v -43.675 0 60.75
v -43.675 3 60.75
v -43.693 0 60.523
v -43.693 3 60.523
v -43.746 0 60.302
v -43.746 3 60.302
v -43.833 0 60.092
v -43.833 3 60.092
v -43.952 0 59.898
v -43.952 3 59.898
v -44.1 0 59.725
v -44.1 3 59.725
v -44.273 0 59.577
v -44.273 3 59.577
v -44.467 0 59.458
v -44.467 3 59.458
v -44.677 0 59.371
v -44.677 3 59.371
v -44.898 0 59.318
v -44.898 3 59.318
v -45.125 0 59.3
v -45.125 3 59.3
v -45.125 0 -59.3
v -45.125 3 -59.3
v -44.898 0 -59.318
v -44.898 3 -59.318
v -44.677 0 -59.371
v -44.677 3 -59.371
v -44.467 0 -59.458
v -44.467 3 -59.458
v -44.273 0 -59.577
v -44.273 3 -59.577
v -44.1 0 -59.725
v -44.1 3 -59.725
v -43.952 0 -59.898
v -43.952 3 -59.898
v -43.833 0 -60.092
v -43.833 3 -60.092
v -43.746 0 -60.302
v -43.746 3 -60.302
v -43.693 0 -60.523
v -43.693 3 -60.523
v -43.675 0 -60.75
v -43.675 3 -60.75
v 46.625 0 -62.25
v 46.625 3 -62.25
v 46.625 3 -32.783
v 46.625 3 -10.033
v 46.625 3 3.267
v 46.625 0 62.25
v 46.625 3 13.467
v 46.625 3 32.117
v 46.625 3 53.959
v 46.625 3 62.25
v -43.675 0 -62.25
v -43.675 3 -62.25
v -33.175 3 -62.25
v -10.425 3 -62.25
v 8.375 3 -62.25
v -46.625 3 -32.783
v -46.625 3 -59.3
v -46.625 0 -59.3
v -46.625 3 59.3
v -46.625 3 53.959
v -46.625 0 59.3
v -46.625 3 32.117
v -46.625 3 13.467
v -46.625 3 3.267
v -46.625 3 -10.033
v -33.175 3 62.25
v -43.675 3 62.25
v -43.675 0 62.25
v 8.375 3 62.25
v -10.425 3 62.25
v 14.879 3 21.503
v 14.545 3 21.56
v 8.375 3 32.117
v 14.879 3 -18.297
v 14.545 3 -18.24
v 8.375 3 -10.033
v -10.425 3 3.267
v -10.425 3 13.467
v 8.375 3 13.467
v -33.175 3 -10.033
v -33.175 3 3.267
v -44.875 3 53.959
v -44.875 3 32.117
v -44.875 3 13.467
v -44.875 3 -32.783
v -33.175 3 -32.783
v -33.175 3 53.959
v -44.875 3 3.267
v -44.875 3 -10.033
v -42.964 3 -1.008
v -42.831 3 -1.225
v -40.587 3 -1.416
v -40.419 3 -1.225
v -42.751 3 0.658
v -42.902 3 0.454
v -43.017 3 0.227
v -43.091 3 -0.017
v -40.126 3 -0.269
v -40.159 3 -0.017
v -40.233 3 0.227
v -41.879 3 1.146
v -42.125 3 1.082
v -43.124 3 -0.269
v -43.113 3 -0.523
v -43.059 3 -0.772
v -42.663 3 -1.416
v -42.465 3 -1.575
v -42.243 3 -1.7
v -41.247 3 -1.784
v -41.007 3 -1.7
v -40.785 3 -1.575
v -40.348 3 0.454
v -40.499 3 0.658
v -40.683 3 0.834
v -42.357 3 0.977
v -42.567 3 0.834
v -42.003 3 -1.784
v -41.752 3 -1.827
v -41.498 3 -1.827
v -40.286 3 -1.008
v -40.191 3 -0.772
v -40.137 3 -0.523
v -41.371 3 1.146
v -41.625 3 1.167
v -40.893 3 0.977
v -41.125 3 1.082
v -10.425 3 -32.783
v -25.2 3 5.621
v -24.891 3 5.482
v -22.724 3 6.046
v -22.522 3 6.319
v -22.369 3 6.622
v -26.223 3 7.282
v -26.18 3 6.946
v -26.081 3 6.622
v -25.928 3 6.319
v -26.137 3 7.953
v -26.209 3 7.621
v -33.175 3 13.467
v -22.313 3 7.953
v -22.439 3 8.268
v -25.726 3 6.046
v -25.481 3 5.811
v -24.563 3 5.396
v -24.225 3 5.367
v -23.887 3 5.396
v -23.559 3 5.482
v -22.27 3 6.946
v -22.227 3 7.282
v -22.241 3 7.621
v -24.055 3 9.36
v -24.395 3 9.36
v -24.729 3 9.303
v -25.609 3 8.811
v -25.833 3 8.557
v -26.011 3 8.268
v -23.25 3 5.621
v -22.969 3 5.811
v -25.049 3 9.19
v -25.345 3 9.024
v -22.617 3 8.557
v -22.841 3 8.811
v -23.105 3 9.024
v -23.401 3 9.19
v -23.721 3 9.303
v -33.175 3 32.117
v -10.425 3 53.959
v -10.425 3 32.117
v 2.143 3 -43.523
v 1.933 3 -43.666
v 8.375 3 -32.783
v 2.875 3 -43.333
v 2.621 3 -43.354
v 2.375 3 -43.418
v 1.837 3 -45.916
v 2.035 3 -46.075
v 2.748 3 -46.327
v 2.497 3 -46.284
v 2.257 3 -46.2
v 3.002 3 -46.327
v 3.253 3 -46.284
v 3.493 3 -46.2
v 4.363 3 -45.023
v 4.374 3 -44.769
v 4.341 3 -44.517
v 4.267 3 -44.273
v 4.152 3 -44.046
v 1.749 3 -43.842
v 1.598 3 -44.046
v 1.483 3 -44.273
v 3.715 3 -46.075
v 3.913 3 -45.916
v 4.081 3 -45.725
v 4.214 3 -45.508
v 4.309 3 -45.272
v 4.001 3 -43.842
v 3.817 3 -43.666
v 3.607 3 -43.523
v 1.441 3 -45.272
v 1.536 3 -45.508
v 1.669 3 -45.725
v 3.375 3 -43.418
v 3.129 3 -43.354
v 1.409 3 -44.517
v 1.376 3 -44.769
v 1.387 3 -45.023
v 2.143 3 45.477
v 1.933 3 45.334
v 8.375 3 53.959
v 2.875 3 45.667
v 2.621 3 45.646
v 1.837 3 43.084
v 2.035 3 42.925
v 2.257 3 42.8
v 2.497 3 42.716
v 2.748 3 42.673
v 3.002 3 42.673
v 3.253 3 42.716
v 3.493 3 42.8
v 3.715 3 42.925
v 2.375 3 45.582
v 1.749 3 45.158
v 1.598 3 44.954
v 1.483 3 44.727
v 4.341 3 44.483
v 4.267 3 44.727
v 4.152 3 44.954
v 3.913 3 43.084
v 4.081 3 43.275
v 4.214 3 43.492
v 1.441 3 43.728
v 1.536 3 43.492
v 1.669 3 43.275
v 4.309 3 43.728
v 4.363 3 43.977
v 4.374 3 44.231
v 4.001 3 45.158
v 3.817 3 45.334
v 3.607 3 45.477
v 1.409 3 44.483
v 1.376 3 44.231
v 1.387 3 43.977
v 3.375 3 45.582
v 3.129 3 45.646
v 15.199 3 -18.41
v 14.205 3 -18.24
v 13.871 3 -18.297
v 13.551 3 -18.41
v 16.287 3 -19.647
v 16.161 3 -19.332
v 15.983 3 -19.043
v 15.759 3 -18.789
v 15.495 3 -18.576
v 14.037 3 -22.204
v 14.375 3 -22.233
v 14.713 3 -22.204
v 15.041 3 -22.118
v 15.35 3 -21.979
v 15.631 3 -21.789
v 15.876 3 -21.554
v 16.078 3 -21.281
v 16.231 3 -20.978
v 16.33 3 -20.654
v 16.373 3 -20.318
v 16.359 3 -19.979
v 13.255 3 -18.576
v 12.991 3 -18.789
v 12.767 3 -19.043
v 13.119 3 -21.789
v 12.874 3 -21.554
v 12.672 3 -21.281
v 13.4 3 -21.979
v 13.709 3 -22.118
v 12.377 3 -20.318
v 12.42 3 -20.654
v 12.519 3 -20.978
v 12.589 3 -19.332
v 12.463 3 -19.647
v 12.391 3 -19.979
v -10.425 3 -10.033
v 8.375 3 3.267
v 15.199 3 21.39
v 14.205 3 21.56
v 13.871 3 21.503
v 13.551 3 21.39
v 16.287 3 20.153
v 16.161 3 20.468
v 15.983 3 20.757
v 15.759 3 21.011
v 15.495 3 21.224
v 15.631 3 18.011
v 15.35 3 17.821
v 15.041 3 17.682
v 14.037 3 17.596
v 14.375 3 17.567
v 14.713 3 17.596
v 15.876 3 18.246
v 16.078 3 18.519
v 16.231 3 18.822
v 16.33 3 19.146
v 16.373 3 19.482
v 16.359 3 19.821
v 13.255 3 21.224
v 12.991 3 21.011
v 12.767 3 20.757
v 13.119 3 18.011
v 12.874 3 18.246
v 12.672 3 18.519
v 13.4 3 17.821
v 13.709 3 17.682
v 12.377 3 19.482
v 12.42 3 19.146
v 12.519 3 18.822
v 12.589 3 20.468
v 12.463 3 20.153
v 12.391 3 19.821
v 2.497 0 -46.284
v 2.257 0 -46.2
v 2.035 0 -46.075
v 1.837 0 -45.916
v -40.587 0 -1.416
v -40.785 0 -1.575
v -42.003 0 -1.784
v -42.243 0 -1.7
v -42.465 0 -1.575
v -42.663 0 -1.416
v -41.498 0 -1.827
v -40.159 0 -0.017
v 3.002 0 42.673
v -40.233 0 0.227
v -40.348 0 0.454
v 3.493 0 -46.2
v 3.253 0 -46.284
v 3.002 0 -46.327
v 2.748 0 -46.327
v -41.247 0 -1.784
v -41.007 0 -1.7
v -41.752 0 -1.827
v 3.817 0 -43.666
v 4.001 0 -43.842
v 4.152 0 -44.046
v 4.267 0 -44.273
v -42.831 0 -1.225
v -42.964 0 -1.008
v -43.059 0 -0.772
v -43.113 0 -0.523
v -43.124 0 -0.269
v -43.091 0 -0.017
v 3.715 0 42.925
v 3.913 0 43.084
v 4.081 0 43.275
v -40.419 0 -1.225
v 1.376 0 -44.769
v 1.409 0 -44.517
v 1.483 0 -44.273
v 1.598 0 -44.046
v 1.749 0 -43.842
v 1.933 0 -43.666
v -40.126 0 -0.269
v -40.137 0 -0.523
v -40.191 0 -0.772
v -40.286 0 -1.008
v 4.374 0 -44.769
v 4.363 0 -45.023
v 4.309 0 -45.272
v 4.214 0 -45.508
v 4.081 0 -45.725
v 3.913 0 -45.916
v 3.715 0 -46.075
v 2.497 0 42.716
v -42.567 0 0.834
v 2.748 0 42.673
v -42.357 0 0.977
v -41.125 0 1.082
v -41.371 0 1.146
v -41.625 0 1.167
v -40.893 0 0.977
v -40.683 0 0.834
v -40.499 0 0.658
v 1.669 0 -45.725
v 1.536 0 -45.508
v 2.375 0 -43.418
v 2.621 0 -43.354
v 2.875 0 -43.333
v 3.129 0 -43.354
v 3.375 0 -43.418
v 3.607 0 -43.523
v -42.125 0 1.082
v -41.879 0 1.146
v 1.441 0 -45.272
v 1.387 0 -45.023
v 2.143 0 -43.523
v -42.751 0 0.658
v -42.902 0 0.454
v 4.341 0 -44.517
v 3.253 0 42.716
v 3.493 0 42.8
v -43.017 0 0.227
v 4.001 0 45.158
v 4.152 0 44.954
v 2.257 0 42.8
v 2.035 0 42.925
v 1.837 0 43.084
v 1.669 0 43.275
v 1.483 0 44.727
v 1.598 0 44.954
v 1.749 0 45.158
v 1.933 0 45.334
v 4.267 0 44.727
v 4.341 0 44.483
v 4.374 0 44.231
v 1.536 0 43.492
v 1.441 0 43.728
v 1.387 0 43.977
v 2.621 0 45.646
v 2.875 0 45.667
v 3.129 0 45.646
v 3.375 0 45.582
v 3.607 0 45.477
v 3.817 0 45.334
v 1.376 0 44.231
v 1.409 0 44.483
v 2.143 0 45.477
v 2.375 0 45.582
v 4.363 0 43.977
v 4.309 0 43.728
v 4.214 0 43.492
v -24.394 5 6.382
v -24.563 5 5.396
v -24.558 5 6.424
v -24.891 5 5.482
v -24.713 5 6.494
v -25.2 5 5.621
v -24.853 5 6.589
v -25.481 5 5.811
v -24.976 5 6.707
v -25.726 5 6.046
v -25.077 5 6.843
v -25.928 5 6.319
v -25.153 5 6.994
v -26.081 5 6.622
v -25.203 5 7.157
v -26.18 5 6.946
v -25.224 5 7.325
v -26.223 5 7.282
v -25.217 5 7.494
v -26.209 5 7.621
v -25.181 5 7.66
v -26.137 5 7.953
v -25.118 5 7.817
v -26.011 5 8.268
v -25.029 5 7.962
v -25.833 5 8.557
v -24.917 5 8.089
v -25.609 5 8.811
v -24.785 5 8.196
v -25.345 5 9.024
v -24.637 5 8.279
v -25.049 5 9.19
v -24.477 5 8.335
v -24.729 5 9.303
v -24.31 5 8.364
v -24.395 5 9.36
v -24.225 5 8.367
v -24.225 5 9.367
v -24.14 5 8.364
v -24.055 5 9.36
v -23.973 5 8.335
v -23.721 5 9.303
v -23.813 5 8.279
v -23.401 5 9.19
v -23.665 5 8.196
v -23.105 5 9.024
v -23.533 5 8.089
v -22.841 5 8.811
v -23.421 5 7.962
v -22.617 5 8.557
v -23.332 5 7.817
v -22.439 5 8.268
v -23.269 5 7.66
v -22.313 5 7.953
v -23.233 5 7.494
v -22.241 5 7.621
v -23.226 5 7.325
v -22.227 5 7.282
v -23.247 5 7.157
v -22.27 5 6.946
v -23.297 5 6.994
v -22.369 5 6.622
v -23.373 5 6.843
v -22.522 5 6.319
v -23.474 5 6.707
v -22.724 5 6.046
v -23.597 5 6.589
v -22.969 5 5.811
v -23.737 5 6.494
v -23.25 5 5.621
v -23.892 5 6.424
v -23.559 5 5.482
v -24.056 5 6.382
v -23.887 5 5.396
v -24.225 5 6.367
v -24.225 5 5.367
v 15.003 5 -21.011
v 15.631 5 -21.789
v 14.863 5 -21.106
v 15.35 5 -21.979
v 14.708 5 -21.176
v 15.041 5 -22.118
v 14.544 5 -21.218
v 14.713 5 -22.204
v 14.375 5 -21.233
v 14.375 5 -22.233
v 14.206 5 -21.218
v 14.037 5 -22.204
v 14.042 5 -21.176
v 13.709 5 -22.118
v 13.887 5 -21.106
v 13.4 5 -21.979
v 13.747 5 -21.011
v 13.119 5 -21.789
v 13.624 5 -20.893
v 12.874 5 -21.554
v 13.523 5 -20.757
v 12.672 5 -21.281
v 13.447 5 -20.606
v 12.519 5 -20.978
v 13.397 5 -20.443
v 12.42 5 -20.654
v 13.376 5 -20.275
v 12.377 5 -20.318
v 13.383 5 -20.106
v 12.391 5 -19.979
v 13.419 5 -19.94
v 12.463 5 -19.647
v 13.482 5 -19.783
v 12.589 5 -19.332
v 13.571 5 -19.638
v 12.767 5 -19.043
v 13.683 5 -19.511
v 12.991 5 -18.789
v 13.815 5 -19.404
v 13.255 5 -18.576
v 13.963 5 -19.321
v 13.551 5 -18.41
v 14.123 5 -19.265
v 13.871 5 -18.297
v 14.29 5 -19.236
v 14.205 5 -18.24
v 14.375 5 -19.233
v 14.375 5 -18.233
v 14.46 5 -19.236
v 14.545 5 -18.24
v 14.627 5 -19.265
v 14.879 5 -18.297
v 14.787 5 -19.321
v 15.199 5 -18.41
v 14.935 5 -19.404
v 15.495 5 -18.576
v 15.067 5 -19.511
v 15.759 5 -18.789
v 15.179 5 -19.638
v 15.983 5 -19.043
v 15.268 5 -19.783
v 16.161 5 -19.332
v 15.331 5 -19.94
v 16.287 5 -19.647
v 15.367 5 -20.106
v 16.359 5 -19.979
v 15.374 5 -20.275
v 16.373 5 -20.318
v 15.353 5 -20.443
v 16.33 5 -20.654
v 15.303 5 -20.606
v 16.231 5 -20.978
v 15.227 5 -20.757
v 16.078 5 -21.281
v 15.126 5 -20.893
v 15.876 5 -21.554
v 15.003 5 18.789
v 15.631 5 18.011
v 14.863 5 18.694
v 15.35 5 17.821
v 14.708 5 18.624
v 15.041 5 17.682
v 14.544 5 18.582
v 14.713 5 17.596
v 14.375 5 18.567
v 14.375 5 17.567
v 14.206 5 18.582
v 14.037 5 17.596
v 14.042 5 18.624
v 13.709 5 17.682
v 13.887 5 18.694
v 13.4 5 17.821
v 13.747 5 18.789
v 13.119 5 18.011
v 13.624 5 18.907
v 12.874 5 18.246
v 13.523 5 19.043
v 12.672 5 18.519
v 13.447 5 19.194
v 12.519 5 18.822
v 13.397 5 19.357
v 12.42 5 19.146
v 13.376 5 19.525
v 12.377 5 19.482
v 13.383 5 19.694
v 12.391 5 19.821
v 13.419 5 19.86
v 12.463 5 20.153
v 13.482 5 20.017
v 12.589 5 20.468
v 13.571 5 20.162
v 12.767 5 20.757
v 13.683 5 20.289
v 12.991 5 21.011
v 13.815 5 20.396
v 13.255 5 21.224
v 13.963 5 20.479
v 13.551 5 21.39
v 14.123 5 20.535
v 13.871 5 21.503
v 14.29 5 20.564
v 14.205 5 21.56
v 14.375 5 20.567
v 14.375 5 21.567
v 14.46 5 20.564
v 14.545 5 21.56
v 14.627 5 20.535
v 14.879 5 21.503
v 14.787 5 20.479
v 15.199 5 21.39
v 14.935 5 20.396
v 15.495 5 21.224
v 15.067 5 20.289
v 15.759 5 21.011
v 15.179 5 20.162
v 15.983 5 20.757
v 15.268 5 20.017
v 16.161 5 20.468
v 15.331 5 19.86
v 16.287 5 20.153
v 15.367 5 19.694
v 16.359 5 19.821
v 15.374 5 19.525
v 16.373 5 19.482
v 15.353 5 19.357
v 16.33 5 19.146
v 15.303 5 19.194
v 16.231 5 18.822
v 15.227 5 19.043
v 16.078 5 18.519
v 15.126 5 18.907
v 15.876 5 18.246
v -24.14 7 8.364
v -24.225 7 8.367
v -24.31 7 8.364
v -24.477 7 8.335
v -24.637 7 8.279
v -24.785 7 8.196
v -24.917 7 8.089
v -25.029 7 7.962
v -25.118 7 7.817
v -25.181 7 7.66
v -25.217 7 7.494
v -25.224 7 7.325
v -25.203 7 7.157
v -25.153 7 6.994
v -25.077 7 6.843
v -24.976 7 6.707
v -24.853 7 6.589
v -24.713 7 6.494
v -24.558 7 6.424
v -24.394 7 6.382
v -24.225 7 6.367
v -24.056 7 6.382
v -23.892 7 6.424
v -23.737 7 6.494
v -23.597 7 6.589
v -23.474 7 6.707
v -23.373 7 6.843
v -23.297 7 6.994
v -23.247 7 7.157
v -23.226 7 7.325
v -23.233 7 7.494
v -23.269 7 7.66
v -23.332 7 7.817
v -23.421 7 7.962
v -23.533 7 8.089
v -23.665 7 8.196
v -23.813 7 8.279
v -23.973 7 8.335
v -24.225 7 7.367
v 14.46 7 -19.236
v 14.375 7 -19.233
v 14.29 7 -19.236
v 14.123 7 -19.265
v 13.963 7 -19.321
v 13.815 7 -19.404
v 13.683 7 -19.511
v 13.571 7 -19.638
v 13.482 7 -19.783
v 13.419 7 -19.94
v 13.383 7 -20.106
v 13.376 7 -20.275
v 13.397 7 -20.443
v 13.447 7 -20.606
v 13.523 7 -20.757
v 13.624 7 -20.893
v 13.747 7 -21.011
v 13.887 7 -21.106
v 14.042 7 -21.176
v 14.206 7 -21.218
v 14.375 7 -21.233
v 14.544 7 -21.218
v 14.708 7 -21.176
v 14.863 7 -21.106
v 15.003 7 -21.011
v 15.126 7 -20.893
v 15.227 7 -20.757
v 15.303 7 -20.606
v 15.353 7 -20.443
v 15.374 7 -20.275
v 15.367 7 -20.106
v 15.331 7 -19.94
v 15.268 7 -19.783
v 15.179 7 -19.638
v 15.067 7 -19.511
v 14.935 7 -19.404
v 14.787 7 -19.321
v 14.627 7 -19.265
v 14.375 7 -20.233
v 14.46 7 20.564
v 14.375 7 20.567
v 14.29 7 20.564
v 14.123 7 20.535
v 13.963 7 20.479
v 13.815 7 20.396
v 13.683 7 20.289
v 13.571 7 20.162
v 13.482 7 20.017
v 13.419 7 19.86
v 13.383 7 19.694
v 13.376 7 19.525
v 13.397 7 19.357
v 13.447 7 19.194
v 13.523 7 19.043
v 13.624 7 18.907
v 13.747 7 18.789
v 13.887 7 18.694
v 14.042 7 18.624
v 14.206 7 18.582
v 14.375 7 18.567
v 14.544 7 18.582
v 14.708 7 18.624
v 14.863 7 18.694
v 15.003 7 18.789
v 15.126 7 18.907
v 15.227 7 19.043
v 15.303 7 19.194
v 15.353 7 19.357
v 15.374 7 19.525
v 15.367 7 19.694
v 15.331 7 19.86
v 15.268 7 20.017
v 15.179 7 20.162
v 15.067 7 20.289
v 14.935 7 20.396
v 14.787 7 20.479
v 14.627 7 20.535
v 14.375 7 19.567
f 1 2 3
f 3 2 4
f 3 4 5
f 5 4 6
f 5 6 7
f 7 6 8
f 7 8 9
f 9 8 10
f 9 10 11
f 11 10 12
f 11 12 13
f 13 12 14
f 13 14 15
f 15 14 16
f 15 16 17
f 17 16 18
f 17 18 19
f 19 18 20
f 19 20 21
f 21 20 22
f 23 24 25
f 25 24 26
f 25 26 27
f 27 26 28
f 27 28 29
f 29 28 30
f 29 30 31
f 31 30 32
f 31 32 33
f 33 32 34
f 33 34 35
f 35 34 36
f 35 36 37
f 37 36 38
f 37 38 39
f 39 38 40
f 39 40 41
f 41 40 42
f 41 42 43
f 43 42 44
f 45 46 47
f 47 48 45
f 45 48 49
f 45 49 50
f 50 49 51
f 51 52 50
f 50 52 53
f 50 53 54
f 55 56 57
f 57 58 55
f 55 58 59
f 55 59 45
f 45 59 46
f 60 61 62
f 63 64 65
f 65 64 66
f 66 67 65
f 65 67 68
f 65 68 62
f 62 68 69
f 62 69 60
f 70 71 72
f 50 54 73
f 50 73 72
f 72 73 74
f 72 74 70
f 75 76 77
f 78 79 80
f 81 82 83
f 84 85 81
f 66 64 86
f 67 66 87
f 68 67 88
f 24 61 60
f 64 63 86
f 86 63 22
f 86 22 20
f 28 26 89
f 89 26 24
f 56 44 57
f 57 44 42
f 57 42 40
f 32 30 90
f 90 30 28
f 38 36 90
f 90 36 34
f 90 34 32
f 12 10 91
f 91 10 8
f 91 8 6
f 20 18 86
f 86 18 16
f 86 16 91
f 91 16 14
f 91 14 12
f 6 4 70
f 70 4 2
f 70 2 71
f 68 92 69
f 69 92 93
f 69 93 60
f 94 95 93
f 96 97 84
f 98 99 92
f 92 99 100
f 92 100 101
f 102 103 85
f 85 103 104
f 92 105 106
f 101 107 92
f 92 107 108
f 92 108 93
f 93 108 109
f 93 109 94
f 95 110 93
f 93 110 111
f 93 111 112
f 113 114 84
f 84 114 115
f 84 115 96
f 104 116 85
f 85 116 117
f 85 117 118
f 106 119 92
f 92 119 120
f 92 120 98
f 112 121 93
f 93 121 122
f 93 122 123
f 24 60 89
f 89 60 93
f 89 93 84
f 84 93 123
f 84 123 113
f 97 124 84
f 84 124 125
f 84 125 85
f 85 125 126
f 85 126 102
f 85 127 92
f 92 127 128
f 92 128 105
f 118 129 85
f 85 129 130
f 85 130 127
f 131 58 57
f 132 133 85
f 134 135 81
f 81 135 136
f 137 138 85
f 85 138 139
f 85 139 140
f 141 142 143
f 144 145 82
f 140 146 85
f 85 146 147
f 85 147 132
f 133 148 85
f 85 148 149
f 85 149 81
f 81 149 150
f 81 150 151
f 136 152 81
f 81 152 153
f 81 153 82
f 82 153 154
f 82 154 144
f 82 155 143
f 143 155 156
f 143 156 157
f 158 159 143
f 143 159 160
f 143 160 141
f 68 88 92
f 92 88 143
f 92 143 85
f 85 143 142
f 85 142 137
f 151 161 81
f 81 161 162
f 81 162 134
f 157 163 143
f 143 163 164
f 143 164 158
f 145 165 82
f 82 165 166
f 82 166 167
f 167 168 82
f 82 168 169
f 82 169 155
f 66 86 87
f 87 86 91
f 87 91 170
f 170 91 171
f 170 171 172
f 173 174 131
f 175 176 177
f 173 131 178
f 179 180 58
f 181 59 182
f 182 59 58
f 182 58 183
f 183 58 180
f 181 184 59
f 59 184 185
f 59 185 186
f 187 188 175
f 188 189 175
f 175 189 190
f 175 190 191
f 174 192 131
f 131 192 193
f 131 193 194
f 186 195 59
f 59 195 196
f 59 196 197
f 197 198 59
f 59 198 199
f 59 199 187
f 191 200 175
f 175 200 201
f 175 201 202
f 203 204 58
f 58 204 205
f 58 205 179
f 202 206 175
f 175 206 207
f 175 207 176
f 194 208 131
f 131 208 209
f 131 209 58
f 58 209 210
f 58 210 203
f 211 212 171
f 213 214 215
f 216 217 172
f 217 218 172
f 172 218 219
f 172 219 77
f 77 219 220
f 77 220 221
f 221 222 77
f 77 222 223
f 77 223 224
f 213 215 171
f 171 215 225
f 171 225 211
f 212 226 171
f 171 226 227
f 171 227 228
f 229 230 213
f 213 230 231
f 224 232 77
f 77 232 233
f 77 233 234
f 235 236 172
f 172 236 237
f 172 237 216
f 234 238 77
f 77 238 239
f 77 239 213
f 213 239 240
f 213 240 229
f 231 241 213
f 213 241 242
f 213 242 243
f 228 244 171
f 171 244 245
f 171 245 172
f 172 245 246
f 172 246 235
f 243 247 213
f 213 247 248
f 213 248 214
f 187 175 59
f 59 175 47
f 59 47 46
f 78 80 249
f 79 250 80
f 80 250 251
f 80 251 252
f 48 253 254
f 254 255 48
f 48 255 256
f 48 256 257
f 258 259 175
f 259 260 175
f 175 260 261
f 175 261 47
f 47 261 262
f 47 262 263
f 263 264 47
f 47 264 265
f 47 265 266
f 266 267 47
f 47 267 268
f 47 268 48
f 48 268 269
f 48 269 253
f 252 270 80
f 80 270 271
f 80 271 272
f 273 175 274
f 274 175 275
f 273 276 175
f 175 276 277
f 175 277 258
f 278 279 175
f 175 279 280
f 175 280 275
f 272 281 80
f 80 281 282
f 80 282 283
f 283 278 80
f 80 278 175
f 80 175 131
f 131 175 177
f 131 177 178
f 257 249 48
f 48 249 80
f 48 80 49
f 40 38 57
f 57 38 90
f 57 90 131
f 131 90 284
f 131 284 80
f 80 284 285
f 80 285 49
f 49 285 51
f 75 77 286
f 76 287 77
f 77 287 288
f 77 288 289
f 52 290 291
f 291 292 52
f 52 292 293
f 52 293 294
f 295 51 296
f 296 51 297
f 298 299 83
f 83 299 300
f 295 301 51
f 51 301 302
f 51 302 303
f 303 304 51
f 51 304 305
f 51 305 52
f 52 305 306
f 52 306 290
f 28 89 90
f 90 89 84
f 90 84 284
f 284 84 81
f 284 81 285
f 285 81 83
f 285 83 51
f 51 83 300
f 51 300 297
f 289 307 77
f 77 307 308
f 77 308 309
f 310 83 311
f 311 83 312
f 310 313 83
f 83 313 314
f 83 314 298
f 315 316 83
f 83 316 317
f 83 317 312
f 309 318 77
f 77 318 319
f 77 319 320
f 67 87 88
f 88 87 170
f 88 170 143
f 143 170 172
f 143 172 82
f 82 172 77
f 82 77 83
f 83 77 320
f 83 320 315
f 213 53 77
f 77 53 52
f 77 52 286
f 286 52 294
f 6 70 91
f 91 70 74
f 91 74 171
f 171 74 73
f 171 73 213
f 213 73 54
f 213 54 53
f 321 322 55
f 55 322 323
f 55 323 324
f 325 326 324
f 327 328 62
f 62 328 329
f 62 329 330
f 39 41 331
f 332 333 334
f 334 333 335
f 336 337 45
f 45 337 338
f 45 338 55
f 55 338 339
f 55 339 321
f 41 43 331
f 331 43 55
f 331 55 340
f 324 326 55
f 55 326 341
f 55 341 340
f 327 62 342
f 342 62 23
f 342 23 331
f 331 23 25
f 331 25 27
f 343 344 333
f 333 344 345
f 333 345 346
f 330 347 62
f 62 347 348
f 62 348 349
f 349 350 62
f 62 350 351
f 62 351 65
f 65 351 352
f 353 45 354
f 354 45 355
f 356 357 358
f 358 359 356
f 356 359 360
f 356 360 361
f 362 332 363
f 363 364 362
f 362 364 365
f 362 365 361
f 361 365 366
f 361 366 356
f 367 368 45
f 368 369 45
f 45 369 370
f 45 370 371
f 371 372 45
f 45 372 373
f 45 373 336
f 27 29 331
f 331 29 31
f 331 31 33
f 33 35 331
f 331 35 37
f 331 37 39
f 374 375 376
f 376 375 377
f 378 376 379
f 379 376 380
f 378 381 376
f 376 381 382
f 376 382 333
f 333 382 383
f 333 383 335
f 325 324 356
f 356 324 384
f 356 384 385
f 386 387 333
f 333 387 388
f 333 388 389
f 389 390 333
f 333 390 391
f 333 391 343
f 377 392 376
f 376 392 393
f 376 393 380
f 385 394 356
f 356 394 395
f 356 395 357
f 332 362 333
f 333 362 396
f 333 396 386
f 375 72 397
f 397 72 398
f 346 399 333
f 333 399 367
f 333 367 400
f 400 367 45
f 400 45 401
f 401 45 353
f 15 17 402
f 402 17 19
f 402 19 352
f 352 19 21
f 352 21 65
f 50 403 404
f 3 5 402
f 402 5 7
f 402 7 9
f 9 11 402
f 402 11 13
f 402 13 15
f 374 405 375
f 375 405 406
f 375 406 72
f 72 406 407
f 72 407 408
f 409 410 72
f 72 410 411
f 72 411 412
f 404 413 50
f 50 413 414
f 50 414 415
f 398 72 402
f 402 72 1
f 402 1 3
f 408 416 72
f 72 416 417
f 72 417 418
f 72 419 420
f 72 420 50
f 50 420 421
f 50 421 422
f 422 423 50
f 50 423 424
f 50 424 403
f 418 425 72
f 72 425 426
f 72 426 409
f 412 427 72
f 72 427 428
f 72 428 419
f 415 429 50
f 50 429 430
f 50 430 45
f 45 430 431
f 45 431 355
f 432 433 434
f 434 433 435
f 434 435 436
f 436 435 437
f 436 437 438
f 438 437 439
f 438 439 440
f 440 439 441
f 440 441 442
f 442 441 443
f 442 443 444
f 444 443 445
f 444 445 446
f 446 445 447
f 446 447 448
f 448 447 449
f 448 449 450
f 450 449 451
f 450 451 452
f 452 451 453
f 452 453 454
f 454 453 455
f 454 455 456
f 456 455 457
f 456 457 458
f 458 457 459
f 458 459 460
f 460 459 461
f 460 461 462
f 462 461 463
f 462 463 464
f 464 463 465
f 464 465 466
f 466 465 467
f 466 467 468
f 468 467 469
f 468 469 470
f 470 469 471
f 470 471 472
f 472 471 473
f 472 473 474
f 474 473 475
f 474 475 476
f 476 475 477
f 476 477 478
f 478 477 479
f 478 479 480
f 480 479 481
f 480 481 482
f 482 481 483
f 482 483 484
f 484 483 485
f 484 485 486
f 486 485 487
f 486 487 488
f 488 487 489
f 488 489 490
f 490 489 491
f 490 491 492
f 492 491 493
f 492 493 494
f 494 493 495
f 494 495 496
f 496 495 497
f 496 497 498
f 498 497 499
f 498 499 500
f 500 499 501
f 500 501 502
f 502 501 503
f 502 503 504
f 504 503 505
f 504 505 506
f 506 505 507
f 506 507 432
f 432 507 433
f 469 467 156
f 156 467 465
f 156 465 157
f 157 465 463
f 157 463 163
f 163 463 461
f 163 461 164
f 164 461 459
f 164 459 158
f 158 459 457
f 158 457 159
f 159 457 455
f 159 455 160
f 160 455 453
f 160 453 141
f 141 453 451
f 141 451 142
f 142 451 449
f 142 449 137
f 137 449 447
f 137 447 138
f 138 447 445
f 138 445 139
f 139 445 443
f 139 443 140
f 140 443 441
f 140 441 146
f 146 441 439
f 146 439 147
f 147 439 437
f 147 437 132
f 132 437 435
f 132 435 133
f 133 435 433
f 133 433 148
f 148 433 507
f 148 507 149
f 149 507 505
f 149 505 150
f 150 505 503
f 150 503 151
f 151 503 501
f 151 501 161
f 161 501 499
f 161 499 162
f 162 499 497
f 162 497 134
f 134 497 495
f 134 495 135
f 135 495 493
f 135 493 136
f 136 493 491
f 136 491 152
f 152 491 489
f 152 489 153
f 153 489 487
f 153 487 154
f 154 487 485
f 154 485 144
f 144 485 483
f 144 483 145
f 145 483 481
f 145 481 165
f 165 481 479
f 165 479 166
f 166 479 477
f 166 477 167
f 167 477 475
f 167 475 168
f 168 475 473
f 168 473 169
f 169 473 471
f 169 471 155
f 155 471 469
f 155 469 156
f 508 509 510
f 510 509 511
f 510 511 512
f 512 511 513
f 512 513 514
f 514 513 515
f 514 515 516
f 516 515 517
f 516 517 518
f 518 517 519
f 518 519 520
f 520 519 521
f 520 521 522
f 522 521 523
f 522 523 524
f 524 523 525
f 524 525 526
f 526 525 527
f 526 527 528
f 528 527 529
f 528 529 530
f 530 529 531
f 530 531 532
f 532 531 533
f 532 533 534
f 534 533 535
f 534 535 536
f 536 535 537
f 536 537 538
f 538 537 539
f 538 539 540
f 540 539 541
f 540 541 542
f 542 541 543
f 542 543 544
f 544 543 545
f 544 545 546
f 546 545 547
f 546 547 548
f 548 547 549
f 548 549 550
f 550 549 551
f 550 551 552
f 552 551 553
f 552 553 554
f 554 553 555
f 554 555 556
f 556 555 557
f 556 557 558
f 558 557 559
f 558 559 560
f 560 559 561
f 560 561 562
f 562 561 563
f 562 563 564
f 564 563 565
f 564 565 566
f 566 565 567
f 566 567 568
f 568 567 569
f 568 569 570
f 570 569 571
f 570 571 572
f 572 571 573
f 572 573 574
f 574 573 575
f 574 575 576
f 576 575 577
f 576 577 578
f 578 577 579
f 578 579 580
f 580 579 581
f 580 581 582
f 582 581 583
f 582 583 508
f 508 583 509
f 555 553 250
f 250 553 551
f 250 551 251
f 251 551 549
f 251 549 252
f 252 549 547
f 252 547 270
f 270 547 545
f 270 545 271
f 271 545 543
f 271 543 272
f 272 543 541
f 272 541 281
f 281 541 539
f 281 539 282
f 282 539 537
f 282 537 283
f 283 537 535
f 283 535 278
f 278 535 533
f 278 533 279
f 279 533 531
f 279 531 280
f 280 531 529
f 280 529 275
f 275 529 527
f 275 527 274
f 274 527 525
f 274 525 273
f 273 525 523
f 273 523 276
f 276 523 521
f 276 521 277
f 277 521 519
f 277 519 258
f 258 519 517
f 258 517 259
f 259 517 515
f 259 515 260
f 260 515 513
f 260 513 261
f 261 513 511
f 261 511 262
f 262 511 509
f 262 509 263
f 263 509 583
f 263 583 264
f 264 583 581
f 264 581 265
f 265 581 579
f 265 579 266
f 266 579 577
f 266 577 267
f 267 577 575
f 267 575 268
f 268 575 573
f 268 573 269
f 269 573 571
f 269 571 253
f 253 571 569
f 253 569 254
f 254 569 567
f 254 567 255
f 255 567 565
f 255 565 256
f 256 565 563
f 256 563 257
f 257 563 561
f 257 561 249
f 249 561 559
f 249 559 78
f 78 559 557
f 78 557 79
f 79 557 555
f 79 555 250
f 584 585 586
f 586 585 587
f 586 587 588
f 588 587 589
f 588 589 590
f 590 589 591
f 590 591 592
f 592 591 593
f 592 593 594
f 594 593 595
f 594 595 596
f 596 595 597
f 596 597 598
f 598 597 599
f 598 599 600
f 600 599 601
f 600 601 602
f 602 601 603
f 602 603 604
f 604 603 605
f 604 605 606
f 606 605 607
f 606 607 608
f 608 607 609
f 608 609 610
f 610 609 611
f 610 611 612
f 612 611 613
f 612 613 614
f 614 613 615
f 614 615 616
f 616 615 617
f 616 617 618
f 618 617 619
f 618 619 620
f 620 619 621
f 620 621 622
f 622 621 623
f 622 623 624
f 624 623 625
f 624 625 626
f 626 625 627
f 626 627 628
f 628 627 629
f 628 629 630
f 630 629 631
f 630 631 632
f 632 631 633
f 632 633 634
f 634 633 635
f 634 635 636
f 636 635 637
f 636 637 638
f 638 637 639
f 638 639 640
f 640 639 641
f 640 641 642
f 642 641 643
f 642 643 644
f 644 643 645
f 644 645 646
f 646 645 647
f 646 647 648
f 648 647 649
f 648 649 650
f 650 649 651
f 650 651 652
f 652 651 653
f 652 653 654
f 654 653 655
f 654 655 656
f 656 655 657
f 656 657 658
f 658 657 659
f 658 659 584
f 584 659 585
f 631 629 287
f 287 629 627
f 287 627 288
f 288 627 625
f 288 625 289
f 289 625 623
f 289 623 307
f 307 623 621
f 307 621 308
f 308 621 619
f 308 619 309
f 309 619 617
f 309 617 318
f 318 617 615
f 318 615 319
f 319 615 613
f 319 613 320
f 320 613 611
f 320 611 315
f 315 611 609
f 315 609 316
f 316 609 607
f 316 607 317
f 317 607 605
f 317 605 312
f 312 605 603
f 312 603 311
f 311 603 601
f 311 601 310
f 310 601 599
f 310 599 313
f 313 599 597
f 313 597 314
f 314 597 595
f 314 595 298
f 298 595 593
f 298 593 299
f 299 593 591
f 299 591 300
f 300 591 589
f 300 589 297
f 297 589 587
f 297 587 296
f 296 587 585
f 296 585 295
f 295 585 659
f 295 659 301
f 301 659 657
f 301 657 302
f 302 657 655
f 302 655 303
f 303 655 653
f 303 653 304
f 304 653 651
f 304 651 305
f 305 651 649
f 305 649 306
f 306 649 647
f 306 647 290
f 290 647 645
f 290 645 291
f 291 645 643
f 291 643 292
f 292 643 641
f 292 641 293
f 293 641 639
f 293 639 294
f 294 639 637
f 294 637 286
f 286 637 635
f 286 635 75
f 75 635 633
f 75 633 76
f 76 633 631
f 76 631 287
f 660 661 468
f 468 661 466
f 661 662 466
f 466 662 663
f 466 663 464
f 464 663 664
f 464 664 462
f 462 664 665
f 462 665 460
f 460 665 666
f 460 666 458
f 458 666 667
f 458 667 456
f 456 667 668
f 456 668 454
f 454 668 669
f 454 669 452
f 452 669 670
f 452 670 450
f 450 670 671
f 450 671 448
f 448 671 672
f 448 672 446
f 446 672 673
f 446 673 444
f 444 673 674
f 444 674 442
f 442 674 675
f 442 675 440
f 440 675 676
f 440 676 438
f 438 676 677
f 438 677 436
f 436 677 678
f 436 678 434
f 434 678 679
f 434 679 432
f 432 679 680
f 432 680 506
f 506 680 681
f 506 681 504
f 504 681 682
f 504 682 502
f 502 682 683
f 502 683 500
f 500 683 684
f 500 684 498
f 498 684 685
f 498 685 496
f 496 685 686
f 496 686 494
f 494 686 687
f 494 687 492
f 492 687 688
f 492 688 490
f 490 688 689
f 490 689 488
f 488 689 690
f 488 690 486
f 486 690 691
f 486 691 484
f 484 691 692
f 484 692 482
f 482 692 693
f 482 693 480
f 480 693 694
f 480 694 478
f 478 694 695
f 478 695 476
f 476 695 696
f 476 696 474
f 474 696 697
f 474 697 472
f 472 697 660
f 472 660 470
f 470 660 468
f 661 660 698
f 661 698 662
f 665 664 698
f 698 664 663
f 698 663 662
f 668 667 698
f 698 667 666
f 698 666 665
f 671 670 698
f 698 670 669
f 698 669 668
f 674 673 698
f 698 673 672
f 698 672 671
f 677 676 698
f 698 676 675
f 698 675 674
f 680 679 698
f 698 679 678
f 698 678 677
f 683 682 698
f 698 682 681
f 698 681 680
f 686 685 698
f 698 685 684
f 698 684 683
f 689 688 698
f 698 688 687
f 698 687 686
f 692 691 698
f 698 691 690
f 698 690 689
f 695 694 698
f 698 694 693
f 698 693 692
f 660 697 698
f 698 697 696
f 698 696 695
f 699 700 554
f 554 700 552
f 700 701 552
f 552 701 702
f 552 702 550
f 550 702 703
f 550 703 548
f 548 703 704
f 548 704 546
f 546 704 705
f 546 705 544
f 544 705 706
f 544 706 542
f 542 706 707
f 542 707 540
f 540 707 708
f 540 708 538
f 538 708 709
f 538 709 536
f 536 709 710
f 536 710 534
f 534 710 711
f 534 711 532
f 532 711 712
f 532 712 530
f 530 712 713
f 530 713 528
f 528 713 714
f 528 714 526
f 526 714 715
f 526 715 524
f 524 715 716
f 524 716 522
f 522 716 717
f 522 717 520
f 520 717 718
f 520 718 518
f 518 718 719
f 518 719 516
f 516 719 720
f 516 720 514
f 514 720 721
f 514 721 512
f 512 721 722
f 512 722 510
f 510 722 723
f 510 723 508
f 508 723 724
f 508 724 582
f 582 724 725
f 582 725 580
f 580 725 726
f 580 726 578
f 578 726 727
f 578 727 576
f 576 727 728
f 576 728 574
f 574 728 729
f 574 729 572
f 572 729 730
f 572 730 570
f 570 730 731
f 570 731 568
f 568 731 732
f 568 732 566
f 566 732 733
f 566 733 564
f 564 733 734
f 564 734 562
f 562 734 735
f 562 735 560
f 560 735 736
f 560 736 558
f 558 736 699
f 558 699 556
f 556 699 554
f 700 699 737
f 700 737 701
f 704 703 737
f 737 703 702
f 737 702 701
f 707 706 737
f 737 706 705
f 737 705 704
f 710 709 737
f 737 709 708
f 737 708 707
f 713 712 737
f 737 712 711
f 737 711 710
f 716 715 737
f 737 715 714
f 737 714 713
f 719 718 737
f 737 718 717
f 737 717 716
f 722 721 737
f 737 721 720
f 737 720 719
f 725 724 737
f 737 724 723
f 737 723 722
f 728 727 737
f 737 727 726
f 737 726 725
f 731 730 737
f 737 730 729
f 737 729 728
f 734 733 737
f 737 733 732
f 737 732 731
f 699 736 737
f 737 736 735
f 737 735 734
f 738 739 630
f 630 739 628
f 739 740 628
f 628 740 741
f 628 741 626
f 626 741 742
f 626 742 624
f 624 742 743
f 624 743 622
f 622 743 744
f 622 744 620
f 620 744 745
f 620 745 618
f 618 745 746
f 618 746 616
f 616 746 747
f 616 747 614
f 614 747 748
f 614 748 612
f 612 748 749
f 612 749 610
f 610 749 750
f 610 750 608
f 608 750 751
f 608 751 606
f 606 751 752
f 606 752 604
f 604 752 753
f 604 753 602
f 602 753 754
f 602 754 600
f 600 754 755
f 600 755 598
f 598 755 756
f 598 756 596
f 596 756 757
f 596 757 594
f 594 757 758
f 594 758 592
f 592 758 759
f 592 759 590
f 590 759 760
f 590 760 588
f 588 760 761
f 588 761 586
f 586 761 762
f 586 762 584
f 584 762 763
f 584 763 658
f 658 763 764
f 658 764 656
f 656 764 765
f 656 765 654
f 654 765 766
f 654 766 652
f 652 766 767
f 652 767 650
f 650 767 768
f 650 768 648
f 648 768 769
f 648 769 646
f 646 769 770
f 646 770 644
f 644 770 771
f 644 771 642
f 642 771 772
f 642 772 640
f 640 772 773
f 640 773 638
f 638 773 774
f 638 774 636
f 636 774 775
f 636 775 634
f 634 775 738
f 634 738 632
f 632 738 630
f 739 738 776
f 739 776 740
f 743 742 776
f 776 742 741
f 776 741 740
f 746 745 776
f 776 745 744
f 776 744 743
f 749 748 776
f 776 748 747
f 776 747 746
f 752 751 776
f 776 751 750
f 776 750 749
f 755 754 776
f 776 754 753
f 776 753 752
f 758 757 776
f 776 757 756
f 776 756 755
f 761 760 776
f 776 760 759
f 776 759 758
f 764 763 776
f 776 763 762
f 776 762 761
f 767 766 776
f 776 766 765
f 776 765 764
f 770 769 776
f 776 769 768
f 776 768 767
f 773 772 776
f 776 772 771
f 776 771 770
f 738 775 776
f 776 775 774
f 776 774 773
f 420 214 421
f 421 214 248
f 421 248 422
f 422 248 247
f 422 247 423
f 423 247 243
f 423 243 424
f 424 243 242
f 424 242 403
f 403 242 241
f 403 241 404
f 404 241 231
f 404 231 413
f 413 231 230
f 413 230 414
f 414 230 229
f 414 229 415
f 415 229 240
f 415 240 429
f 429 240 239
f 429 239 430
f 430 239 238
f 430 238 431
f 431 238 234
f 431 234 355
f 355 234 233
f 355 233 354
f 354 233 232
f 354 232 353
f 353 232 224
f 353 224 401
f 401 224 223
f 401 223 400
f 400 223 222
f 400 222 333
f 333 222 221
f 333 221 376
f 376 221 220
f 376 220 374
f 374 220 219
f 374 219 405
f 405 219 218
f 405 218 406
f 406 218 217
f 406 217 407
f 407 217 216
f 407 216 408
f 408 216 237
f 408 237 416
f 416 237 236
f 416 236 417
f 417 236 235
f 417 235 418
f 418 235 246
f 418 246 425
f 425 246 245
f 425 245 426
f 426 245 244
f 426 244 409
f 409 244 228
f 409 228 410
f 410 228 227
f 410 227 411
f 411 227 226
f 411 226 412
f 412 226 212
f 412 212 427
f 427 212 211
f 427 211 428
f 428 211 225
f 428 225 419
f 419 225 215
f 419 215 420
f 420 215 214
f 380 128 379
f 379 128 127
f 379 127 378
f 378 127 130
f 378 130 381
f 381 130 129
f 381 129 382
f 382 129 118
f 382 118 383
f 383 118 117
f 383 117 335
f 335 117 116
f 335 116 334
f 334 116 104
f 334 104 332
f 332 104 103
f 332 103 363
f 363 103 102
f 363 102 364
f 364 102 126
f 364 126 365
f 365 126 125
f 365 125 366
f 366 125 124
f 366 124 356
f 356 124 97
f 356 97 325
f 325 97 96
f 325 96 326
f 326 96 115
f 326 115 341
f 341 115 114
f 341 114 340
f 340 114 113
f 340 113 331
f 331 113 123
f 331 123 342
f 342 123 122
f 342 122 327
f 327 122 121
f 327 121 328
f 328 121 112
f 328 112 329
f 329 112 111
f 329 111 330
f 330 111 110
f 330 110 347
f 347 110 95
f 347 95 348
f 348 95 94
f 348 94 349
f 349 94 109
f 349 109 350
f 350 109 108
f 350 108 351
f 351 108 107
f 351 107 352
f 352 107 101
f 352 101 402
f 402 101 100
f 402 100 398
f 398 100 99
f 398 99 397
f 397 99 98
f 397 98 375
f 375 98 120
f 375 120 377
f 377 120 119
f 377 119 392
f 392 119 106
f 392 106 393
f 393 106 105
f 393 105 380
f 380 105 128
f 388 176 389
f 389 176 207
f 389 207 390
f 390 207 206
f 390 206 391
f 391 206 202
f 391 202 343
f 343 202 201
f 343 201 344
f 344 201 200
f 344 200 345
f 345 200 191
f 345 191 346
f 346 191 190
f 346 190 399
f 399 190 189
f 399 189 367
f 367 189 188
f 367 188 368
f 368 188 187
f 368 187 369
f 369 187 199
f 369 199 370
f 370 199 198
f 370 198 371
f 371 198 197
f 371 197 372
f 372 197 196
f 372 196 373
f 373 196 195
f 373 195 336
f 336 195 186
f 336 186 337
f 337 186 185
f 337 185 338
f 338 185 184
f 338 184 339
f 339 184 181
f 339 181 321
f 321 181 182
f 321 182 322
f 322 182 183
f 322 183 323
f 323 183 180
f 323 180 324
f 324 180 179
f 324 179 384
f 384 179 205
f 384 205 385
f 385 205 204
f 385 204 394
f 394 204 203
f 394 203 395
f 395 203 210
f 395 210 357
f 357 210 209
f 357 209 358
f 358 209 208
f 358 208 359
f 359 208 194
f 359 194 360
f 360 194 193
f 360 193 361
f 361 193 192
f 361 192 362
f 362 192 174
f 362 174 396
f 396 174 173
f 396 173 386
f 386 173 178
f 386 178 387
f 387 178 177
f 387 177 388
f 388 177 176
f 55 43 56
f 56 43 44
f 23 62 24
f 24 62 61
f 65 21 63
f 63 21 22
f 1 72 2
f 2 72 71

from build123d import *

# Parameters (mm, degrees)
SKETCH1_W           = 93.25
SKETCH1_H           = 124.5
BOSS_EXTRUDE1_DEPTH = 3
SKETCH2_R           = 1.45
CUT_EXTRUDE1_DEPTH  = 78.832853764
SKETCH6_R           = 2
SKETCH6_R_2         = 1
BOSS_EXTRUDE4_DEPTH = 2
SKETCH7_R           = 1
BOSS_EXTRUDE5_DEPTH = 4
SKETCH8_R           = 1.5
CUT_EXTRUDE2_DEPTH  = 3
CUT_EXTRUDE3_DEPTH  = 3
CUT_EXTRUDE4_DEPTH  = 3


with BuildPart() as part:
    # Sketch1 → Boss-Extrude1 (new body)
    with BuildSketch(Plane(origin=(0, 0, 0), x_dir=(1, 0, 0), z_dir=(0, 1, 0))):
        Rectangle(SKETCH1_W, SKETCH1_H)
    extrude(amount=BOSS_EXTRUDE1_DEPTH)

    # Sketch2 → Cut-Extrude1 (cut, through all)
    with BuildSketch(Plane(origin=(0, 3, 0), x_dir=(1, 0, 0), z_dir=(0, 1, 0))):
        with Locations(Location((-45.125, 60.75, 0), (0, 0, 270))):
            Circle(SKETCH2_R)
        with Locations(Location((-45.125, -60.75, 0), (0, 0, 270))):
            Circle(SKETCH2_R)
    extrude(amount=-CUT_EXTRUDE1_DEPTH, mode=Mode.SUBTRACT)

    # Sketch6 → Boss-Extrude4 (add)
    # profile 1 of 3: a face of its own
    with BuildSketch(Plane(origin=(0, 3, 0), x_dir=(1, 0, 0), z_dir=(0, 1, 0))):
        with Locations(Location((-24.225, -7.367286263, 0), (0, 0, 90))):
            Circle(SKETCH6_R)
        with Locations(Location((-24.225, -7.367286263, 0), (0, 0, 270))):
            Circle(SKETCH6_R_2, mode=Mode.SUBTRACT)
    # profile 2 of 3: a face of its own
    with BuildSketch(Plane(origin=(0, 3, 0), x_dir=(1, 0, 0), z_dir=(0, 1, 0))):
        with Locations(Location((14.375, 20.232713737, 0), (0, 0, 90))):
            Circle(SKETCH6_R)
        with Locations(Location((14.375, 20.232713737, 0), (0, 0, 270))):
            Circle(SKETCH6_R_2, mode=Mode.SUBTRACT)
    # profile 3 of 3: a face of its own
    with BuildSketch(Plane(origin=(0, 3, 0), x_dir=(1, 0, 0), z_dir=(0, 1, 0))):
        with Locations(Location((14.375, -19.567286263, 0), (0, 0, 90))):
            Circle(SKETCH6_R)
        with Locations(Location((14.375, -19.567286263, 0), (0, 0, 270))):
            Circle(SKETCH6_R_2, mode=Mode.SUBTRACT)
    extrude(amount=BOSS_EXTRUDE4_DEPTH)

    # Sketch7 → Boss-Extrude5 (add)
    with BuildSketch(Plane(origin=(0, 3, 0), x_dir=(1, 0, 0), z_dir=(0, 1, 0))):
        with Locations(Location((-24.225, -7.367286263, 0), (0, 0, 270))):
            Circle(SKETCH7_R)
        with Locations(Location((14.375, 20.232713737, 0), (0, 0, 270))):
            Circle(SKETCH7_R)
        with Locations(Location((14.375, -19.567286263, 0), (0, 0, 270))):
            Circle(SKETCH7_R)
    extrude(amount=BOSS_EXTRUDE5_DEPTH)

    # Sketch8 → Cut-Extrude2 (cut)
    with BuildSketch(Plane(origin=(0, 3, 0), x_dir=(1, 0, 0), z_dir=(0, 1, 0))):
        with Locations(Location((2.875, 44.832713737, 0), (0, 0, 270))):
            Circle(SKETCH8_R)
        with Locations(Location((-41.625, 0.332713737, 0), (0, 0, 270))):
            Circle(SKETCH8_R)
        with Locations(Location((2.875, -44.167286263, 0), (0, 0, 270))):
            Circle(SKETCH8_R)
    extrude(amount=-CUT_EXTRUDE2_DEPTH, mode=Mode.SUBTRACT)

    # Sketch9 → Cut-Extrude3 (cut)
    with BuildSketch(Plane(origin=(0, 3, 0), x_dir=(1, 0, 0), z_dir=(0, 1, 0))):
        with BuildLine():
            Line((-45.125, 59.3), (-46.625, 59.3))
            Line((-46.625, 59.3), (-46.625, 62.25))
            Line((-46.625, 62.25), (-43.675, 62.25))
            Line((-43.675, 62.25), (-43.675, 60.75))
            ThreePointArc((-43.675, 60.75), (-44.099695167, 59.724695167), (-45.125, 59.3))
        make_face()
    extrude(amount=-CUT_EXTRUDE3_DEPTH, mode=Mode.SUBTRACT)

    # Sketch10 → Cut-Extrude4 (cut)
    with BuildSketch(Plane(origin=(0, 3, 0), x_dir=(1, 0, 0), z_dir=(0, 1, 0))):
        with BuildLine():
            Line((-45.125, -59.3), (-46.625, -59.3))
            Line((-46.625, -59.3), (-46.625, -62.25))
            Line((-46.625, -62.25), (-43.675, -62.25))
            Line((-43.675, -62.25), (-43.675, -60.75))
            ThreePointArc((-43.675, -60.75), (-44.099695167, -59.724695167), (-45.125, -59.3))
        make_face()
    extrude(amount=-CUT_EXTRUDE4_DEPTH, mode=Mode.SUBTRACT)


solid = part.part
